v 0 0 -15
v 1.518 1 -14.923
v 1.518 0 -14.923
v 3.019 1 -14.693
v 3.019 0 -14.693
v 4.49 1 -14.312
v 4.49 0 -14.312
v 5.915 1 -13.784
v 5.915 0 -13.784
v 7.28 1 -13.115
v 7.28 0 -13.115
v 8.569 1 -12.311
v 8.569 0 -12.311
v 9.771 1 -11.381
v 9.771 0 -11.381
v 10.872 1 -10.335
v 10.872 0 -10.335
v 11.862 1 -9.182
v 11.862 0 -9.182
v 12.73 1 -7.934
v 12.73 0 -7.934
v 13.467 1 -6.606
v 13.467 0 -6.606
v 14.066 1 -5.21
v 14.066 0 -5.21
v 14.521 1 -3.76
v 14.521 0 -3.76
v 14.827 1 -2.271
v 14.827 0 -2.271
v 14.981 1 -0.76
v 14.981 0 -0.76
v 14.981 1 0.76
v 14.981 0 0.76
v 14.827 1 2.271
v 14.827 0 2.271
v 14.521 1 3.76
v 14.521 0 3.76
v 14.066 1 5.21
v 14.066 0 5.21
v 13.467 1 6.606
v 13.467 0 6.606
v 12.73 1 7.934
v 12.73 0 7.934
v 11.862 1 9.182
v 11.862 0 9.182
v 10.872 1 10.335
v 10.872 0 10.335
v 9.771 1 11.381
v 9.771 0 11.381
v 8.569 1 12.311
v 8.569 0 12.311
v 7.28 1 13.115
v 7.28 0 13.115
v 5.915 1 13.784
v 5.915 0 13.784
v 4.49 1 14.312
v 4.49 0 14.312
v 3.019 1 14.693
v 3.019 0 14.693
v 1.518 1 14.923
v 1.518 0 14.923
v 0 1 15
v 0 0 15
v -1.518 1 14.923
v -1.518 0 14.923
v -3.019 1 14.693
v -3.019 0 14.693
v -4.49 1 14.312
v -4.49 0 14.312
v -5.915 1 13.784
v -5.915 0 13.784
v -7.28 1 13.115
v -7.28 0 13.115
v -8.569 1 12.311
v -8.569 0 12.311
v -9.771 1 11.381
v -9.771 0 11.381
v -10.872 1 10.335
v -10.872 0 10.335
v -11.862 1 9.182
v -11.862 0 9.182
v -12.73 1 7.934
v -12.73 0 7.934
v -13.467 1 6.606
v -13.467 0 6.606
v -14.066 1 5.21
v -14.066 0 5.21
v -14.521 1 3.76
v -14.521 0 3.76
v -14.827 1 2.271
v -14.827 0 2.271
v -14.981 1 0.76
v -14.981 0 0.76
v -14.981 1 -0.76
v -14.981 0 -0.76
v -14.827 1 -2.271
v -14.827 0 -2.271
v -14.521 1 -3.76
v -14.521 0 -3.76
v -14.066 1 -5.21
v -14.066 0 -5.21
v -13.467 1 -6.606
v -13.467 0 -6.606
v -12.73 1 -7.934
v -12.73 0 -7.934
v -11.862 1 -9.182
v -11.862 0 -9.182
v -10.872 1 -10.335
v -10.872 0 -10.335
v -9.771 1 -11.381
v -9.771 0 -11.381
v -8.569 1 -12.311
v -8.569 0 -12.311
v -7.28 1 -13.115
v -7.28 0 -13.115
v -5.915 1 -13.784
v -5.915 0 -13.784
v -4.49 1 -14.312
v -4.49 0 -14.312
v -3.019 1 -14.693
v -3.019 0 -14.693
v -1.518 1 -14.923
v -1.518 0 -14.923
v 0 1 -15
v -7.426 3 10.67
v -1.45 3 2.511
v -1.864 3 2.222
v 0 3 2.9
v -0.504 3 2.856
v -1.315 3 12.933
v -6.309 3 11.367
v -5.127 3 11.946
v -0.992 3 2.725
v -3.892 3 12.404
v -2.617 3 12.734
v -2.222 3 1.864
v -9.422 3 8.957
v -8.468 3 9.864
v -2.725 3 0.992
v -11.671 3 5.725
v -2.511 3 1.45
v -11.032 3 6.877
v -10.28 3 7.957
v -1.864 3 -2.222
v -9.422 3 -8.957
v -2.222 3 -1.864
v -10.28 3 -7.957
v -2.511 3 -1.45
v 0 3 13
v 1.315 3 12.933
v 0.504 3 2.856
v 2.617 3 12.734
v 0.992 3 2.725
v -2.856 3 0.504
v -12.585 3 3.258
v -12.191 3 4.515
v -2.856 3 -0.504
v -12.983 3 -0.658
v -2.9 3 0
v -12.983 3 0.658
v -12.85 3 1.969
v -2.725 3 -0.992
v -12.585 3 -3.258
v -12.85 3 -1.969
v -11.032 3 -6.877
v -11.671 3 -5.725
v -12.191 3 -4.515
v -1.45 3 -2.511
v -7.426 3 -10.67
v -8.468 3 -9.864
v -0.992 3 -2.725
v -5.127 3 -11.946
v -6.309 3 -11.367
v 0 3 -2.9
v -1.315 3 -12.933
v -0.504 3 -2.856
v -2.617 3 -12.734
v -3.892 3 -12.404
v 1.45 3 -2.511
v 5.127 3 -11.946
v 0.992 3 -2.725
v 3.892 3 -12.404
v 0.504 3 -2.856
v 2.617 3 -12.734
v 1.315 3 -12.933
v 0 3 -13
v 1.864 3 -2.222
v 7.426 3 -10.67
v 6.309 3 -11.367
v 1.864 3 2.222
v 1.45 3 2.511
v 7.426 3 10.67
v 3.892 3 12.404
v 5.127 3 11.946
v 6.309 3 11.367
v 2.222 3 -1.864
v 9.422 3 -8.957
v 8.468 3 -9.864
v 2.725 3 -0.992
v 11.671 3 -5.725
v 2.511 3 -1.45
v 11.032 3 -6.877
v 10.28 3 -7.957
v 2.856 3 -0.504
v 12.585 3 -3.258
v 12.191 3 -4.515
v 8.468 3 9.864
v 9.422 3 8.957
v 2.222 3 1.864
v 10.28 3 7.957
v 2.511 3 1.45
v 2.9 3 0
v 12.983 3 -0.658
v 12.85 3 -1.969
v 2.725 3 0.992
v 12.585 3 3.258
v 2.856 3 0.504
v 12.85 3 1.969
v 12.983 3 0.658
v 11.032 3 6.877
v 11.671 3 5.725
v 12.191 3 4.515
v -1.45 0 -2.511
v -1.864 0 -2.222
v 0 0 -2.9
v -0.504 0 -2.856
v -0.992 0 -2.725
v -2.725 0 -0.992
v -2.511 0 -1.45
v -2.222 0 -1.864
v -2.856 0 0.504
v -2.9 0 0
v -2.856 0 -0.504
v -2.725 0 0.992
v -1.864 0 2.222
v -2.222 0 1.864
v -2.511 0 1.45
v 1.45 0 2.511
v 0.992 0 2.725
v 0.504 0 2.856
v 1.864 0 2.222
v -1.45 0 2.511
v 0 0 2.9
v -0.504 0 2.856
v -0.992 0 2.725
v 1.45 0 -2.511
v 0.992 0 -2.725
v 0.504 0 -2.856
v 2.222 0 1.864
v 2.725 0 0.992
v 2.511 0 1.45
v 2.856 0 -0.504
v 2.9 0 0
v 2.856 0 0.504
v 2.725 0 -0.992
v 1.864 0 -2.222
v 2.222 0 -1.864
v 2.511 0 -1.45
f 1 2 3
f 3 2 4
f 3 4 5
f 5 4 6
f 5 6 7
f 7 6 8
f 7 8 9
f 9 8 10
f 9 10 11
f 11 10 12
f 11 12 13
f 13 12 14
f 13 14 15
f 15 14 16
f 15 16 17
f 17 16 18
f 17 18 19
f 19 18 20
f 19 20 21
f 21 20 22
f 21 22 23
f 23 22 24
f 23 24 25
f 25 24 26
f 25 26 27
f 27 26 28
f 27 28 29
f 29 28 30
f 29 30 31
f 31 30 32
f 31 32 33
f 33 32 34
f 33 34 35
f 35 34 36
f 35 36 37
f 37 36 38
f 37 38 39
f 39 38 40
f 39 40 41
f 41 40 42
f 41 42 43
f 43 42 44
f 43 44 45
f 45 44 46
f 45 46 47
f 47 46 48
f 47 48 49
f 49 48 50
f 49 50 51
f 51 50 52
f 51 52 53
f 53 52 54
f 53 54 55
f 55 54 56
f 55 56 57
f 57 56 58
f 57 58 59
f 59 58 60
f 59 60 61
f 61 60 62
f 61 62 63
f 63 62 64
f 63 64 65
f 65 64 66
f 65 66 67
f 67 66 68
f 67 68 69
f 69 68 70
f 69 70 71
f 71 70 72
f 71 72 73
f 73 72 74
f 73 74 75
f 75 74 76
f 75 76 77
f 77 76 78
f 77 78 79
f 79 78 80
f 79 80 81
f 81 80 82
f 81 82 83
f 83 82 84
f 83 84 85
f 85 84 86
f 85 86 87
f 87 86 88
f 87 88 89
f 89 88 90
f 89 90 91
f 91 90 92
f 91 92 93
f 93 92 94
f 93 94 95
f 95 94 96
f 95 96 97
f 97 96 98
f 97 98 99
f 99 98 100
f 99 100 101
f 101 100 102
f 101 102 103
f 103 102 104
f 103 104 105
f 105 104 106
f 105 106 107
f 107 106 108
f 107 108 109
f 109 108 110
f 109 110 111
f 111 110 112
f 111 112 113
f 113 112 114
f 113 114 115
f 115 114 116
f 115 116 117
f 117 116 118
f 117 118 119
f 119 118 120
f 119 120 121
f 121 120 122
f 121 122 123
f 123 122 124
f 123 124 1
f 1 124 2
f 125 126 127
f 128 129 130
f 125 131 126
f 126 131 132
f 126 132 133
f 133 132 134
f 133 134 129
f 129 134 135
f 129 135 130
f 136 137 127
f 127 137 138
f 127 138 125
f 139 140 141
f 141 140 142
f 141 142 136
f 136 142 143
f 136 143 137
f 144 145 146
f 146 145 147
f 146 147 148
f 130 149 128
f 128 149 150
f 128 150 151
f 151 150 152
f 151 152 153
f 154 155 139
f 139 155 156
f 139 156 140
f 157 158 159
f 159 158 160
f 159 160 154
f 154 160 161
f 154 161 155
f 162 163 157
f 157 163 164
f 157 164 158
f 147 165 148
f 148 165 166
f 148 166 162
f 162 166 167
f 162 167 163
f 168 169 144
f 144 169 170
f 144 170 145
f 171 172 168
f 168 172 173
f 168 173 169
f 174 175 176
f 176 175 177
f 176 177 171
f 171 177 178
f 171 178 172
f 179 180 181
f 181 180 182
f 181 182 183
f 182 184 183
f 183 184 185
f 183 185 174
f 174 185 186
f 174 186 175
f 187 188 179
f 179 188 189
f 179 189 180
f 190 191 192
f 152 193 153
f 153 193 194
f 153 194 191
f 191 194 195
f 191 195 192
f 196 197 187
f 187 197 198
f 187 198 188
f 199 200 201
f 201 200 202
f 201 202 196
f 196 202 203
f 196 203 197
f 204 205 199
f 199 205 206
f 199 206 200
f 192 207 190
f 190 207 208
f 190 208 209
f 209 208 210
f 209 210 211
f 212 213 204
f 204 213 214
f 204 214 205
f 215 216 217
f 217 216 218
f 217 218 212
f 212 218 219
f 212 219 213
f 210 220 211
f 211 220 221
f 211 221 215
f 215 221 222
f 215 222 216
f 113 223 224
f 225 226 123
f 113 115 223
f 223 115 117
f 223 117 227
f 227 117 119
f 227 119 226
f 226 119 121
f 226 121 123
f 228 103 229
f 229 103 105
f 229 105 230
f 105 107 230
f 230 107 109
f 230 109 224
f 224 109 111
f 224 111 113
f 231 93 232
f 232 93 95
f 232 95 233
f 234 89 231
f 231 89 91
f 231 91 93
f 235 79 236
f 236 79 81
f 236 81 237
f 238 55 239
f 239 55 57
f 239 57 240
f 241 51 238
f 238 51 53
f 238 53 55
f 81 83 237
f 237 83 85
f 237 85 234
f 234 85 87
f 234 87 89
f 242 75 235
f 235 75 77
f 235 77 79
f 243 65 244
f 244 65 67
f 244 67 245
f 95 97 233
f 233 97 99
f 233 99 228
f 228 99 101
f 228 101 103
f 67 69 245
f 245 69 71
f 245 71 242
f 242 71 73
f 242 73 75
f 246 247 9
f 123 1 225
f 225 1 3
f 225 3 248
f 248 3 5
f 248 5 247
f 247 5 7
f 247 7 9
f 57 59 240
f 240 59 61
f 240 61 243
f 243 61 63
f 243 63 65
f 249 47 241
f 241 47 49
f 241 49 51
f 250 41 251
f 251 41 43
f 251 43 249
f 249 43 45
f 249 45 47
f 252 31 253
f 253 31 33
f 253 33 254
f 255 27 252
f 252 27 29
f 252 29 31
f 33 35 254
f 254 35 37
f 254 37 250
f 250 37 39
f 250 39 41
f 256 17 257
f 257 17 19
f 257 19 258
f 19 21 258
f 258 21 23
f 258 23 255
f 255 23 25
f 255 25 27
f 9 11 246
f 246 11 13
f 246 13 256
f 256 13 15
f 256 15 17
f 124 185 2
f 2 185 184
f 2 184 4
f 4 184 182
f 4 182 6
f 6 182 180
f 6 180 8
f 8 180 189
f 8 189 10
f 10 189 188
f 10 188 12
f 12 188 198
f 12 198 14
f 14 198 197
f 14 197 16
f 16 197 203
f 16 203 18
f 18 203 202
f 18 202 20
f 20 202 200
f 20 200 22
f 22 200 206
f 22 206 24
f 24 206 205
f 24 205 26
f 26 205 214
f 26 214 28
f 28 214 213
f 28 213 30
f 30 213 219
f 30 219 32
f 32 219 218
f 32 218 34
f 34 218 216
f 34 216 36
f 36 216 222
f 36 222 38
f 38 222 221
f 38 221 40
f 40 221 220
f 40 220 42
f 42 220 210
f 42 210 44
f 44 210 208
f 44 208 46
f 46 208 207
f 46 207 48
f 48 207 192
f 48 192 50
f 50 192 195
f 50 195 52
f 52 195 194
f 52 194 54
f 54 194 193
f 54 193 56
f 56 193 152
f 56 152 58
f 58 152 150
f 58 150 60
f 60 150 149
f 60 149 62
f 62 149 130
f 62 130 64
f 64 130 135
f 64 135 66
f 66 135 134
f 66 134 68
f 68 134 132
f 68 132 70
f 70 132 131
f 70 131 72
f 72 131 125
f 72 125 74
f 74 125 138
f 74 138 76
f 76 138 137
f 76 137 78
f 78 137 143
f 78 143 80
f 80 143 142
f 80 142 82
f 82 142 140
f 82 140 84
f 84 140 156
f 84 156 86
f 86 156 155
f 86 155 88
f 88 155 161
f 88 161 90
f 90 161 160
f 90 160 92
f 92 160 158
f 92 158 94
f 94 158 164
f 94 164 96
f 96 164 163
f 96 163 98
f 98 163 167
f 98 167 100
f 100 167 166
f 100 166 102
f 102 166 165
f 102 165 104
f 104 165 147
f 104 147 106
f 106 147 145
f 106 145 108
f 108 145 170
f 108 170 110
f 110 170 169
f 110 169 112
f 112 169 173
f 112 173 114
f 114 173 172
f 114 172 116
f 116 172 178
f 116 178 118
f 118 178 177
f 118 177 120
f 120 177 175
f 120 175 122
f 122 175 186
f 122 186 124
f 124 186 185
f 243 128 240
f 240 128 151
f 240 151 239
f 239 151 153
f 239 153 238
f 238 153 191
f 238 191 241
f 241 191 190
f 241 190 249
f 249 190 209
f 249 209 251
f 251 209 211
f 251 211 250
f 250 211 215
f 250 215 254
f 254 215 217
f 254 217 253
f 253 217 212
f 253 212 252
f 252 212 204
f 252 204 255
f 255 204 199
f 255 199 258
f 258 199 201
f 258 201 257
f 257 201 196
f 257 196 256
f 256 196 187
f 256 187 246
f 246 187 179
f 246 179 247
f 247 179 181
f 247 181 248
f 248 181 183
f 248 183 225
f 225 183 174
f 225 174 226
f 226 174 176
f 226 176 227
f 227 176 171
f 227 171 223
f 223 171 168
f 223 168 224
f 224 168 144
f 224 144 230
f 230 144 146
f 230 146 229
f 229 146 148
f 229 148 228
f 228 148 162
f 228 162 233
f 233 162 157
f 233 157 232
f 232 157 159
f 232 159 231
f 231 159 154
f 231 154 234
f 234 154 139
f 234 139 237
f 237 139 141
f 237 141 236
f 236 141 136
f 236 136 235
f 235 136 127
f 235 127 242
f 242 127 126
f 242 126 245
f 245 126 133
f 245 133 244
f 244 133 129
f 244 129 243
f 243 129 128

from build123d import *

# Parameters (mm, degrees)
SKETCH1_R                = 15
BOSS_EXTRUDE1_DEPTH      = 3
CHAMFER1_SIZE            = 2
M5_CLEARANCE_HOLE1_D     = 5.8
M5_CLEARANCE_HOLE1_DEPTH = 6
M5_CLEARANCE_HOLE1_TIP   = 1.742495795


with BuildPart() as part:
    # Sketch1 → Boss-Extrude1 (new body)
    with BuildSketch(Plane(origin=(0, 0, 0), x_dir=(1, 0, 0), z_dir=(0, 1, 0))):
        Circle(SKETCH1_R)
    extrude(amount=BOSS_EXTRUDE1_DEPTH)

    # Chamfer1
    chamfer1_edges = [part.edges().sort_by_distance(p)[0] for p in [
        (-15, 3, 0),
    ]]
    chamfer(chamfer1_edges, length=CHAMFER1_SIZE)

    # M5 Clearance Hole1
    with Locations(Plane(origin=(0, 3, 0), x_dir=(1, 0, 0), z_dir=(0, 1, 0))):
        with Locations((0, 0)):
            Hole(M5_CLEARANCE_HOLE1_D / 2, depth=M5_CLEARANCE_HOLE1_DEPTH)
            with Locations((0, 0, -(M5_CLEARANCE_HOLE1_DEPTH + M5_CLEARANCE_HOLE1_TIP / 2))):  # 118° drill point
                Cone(0, M5_CLEARANCE_HOLE1_D / 2, M5_CLEARANCE_HOLE1_TIP, mode=Mode.SUBTRACT)


solid = part.part
